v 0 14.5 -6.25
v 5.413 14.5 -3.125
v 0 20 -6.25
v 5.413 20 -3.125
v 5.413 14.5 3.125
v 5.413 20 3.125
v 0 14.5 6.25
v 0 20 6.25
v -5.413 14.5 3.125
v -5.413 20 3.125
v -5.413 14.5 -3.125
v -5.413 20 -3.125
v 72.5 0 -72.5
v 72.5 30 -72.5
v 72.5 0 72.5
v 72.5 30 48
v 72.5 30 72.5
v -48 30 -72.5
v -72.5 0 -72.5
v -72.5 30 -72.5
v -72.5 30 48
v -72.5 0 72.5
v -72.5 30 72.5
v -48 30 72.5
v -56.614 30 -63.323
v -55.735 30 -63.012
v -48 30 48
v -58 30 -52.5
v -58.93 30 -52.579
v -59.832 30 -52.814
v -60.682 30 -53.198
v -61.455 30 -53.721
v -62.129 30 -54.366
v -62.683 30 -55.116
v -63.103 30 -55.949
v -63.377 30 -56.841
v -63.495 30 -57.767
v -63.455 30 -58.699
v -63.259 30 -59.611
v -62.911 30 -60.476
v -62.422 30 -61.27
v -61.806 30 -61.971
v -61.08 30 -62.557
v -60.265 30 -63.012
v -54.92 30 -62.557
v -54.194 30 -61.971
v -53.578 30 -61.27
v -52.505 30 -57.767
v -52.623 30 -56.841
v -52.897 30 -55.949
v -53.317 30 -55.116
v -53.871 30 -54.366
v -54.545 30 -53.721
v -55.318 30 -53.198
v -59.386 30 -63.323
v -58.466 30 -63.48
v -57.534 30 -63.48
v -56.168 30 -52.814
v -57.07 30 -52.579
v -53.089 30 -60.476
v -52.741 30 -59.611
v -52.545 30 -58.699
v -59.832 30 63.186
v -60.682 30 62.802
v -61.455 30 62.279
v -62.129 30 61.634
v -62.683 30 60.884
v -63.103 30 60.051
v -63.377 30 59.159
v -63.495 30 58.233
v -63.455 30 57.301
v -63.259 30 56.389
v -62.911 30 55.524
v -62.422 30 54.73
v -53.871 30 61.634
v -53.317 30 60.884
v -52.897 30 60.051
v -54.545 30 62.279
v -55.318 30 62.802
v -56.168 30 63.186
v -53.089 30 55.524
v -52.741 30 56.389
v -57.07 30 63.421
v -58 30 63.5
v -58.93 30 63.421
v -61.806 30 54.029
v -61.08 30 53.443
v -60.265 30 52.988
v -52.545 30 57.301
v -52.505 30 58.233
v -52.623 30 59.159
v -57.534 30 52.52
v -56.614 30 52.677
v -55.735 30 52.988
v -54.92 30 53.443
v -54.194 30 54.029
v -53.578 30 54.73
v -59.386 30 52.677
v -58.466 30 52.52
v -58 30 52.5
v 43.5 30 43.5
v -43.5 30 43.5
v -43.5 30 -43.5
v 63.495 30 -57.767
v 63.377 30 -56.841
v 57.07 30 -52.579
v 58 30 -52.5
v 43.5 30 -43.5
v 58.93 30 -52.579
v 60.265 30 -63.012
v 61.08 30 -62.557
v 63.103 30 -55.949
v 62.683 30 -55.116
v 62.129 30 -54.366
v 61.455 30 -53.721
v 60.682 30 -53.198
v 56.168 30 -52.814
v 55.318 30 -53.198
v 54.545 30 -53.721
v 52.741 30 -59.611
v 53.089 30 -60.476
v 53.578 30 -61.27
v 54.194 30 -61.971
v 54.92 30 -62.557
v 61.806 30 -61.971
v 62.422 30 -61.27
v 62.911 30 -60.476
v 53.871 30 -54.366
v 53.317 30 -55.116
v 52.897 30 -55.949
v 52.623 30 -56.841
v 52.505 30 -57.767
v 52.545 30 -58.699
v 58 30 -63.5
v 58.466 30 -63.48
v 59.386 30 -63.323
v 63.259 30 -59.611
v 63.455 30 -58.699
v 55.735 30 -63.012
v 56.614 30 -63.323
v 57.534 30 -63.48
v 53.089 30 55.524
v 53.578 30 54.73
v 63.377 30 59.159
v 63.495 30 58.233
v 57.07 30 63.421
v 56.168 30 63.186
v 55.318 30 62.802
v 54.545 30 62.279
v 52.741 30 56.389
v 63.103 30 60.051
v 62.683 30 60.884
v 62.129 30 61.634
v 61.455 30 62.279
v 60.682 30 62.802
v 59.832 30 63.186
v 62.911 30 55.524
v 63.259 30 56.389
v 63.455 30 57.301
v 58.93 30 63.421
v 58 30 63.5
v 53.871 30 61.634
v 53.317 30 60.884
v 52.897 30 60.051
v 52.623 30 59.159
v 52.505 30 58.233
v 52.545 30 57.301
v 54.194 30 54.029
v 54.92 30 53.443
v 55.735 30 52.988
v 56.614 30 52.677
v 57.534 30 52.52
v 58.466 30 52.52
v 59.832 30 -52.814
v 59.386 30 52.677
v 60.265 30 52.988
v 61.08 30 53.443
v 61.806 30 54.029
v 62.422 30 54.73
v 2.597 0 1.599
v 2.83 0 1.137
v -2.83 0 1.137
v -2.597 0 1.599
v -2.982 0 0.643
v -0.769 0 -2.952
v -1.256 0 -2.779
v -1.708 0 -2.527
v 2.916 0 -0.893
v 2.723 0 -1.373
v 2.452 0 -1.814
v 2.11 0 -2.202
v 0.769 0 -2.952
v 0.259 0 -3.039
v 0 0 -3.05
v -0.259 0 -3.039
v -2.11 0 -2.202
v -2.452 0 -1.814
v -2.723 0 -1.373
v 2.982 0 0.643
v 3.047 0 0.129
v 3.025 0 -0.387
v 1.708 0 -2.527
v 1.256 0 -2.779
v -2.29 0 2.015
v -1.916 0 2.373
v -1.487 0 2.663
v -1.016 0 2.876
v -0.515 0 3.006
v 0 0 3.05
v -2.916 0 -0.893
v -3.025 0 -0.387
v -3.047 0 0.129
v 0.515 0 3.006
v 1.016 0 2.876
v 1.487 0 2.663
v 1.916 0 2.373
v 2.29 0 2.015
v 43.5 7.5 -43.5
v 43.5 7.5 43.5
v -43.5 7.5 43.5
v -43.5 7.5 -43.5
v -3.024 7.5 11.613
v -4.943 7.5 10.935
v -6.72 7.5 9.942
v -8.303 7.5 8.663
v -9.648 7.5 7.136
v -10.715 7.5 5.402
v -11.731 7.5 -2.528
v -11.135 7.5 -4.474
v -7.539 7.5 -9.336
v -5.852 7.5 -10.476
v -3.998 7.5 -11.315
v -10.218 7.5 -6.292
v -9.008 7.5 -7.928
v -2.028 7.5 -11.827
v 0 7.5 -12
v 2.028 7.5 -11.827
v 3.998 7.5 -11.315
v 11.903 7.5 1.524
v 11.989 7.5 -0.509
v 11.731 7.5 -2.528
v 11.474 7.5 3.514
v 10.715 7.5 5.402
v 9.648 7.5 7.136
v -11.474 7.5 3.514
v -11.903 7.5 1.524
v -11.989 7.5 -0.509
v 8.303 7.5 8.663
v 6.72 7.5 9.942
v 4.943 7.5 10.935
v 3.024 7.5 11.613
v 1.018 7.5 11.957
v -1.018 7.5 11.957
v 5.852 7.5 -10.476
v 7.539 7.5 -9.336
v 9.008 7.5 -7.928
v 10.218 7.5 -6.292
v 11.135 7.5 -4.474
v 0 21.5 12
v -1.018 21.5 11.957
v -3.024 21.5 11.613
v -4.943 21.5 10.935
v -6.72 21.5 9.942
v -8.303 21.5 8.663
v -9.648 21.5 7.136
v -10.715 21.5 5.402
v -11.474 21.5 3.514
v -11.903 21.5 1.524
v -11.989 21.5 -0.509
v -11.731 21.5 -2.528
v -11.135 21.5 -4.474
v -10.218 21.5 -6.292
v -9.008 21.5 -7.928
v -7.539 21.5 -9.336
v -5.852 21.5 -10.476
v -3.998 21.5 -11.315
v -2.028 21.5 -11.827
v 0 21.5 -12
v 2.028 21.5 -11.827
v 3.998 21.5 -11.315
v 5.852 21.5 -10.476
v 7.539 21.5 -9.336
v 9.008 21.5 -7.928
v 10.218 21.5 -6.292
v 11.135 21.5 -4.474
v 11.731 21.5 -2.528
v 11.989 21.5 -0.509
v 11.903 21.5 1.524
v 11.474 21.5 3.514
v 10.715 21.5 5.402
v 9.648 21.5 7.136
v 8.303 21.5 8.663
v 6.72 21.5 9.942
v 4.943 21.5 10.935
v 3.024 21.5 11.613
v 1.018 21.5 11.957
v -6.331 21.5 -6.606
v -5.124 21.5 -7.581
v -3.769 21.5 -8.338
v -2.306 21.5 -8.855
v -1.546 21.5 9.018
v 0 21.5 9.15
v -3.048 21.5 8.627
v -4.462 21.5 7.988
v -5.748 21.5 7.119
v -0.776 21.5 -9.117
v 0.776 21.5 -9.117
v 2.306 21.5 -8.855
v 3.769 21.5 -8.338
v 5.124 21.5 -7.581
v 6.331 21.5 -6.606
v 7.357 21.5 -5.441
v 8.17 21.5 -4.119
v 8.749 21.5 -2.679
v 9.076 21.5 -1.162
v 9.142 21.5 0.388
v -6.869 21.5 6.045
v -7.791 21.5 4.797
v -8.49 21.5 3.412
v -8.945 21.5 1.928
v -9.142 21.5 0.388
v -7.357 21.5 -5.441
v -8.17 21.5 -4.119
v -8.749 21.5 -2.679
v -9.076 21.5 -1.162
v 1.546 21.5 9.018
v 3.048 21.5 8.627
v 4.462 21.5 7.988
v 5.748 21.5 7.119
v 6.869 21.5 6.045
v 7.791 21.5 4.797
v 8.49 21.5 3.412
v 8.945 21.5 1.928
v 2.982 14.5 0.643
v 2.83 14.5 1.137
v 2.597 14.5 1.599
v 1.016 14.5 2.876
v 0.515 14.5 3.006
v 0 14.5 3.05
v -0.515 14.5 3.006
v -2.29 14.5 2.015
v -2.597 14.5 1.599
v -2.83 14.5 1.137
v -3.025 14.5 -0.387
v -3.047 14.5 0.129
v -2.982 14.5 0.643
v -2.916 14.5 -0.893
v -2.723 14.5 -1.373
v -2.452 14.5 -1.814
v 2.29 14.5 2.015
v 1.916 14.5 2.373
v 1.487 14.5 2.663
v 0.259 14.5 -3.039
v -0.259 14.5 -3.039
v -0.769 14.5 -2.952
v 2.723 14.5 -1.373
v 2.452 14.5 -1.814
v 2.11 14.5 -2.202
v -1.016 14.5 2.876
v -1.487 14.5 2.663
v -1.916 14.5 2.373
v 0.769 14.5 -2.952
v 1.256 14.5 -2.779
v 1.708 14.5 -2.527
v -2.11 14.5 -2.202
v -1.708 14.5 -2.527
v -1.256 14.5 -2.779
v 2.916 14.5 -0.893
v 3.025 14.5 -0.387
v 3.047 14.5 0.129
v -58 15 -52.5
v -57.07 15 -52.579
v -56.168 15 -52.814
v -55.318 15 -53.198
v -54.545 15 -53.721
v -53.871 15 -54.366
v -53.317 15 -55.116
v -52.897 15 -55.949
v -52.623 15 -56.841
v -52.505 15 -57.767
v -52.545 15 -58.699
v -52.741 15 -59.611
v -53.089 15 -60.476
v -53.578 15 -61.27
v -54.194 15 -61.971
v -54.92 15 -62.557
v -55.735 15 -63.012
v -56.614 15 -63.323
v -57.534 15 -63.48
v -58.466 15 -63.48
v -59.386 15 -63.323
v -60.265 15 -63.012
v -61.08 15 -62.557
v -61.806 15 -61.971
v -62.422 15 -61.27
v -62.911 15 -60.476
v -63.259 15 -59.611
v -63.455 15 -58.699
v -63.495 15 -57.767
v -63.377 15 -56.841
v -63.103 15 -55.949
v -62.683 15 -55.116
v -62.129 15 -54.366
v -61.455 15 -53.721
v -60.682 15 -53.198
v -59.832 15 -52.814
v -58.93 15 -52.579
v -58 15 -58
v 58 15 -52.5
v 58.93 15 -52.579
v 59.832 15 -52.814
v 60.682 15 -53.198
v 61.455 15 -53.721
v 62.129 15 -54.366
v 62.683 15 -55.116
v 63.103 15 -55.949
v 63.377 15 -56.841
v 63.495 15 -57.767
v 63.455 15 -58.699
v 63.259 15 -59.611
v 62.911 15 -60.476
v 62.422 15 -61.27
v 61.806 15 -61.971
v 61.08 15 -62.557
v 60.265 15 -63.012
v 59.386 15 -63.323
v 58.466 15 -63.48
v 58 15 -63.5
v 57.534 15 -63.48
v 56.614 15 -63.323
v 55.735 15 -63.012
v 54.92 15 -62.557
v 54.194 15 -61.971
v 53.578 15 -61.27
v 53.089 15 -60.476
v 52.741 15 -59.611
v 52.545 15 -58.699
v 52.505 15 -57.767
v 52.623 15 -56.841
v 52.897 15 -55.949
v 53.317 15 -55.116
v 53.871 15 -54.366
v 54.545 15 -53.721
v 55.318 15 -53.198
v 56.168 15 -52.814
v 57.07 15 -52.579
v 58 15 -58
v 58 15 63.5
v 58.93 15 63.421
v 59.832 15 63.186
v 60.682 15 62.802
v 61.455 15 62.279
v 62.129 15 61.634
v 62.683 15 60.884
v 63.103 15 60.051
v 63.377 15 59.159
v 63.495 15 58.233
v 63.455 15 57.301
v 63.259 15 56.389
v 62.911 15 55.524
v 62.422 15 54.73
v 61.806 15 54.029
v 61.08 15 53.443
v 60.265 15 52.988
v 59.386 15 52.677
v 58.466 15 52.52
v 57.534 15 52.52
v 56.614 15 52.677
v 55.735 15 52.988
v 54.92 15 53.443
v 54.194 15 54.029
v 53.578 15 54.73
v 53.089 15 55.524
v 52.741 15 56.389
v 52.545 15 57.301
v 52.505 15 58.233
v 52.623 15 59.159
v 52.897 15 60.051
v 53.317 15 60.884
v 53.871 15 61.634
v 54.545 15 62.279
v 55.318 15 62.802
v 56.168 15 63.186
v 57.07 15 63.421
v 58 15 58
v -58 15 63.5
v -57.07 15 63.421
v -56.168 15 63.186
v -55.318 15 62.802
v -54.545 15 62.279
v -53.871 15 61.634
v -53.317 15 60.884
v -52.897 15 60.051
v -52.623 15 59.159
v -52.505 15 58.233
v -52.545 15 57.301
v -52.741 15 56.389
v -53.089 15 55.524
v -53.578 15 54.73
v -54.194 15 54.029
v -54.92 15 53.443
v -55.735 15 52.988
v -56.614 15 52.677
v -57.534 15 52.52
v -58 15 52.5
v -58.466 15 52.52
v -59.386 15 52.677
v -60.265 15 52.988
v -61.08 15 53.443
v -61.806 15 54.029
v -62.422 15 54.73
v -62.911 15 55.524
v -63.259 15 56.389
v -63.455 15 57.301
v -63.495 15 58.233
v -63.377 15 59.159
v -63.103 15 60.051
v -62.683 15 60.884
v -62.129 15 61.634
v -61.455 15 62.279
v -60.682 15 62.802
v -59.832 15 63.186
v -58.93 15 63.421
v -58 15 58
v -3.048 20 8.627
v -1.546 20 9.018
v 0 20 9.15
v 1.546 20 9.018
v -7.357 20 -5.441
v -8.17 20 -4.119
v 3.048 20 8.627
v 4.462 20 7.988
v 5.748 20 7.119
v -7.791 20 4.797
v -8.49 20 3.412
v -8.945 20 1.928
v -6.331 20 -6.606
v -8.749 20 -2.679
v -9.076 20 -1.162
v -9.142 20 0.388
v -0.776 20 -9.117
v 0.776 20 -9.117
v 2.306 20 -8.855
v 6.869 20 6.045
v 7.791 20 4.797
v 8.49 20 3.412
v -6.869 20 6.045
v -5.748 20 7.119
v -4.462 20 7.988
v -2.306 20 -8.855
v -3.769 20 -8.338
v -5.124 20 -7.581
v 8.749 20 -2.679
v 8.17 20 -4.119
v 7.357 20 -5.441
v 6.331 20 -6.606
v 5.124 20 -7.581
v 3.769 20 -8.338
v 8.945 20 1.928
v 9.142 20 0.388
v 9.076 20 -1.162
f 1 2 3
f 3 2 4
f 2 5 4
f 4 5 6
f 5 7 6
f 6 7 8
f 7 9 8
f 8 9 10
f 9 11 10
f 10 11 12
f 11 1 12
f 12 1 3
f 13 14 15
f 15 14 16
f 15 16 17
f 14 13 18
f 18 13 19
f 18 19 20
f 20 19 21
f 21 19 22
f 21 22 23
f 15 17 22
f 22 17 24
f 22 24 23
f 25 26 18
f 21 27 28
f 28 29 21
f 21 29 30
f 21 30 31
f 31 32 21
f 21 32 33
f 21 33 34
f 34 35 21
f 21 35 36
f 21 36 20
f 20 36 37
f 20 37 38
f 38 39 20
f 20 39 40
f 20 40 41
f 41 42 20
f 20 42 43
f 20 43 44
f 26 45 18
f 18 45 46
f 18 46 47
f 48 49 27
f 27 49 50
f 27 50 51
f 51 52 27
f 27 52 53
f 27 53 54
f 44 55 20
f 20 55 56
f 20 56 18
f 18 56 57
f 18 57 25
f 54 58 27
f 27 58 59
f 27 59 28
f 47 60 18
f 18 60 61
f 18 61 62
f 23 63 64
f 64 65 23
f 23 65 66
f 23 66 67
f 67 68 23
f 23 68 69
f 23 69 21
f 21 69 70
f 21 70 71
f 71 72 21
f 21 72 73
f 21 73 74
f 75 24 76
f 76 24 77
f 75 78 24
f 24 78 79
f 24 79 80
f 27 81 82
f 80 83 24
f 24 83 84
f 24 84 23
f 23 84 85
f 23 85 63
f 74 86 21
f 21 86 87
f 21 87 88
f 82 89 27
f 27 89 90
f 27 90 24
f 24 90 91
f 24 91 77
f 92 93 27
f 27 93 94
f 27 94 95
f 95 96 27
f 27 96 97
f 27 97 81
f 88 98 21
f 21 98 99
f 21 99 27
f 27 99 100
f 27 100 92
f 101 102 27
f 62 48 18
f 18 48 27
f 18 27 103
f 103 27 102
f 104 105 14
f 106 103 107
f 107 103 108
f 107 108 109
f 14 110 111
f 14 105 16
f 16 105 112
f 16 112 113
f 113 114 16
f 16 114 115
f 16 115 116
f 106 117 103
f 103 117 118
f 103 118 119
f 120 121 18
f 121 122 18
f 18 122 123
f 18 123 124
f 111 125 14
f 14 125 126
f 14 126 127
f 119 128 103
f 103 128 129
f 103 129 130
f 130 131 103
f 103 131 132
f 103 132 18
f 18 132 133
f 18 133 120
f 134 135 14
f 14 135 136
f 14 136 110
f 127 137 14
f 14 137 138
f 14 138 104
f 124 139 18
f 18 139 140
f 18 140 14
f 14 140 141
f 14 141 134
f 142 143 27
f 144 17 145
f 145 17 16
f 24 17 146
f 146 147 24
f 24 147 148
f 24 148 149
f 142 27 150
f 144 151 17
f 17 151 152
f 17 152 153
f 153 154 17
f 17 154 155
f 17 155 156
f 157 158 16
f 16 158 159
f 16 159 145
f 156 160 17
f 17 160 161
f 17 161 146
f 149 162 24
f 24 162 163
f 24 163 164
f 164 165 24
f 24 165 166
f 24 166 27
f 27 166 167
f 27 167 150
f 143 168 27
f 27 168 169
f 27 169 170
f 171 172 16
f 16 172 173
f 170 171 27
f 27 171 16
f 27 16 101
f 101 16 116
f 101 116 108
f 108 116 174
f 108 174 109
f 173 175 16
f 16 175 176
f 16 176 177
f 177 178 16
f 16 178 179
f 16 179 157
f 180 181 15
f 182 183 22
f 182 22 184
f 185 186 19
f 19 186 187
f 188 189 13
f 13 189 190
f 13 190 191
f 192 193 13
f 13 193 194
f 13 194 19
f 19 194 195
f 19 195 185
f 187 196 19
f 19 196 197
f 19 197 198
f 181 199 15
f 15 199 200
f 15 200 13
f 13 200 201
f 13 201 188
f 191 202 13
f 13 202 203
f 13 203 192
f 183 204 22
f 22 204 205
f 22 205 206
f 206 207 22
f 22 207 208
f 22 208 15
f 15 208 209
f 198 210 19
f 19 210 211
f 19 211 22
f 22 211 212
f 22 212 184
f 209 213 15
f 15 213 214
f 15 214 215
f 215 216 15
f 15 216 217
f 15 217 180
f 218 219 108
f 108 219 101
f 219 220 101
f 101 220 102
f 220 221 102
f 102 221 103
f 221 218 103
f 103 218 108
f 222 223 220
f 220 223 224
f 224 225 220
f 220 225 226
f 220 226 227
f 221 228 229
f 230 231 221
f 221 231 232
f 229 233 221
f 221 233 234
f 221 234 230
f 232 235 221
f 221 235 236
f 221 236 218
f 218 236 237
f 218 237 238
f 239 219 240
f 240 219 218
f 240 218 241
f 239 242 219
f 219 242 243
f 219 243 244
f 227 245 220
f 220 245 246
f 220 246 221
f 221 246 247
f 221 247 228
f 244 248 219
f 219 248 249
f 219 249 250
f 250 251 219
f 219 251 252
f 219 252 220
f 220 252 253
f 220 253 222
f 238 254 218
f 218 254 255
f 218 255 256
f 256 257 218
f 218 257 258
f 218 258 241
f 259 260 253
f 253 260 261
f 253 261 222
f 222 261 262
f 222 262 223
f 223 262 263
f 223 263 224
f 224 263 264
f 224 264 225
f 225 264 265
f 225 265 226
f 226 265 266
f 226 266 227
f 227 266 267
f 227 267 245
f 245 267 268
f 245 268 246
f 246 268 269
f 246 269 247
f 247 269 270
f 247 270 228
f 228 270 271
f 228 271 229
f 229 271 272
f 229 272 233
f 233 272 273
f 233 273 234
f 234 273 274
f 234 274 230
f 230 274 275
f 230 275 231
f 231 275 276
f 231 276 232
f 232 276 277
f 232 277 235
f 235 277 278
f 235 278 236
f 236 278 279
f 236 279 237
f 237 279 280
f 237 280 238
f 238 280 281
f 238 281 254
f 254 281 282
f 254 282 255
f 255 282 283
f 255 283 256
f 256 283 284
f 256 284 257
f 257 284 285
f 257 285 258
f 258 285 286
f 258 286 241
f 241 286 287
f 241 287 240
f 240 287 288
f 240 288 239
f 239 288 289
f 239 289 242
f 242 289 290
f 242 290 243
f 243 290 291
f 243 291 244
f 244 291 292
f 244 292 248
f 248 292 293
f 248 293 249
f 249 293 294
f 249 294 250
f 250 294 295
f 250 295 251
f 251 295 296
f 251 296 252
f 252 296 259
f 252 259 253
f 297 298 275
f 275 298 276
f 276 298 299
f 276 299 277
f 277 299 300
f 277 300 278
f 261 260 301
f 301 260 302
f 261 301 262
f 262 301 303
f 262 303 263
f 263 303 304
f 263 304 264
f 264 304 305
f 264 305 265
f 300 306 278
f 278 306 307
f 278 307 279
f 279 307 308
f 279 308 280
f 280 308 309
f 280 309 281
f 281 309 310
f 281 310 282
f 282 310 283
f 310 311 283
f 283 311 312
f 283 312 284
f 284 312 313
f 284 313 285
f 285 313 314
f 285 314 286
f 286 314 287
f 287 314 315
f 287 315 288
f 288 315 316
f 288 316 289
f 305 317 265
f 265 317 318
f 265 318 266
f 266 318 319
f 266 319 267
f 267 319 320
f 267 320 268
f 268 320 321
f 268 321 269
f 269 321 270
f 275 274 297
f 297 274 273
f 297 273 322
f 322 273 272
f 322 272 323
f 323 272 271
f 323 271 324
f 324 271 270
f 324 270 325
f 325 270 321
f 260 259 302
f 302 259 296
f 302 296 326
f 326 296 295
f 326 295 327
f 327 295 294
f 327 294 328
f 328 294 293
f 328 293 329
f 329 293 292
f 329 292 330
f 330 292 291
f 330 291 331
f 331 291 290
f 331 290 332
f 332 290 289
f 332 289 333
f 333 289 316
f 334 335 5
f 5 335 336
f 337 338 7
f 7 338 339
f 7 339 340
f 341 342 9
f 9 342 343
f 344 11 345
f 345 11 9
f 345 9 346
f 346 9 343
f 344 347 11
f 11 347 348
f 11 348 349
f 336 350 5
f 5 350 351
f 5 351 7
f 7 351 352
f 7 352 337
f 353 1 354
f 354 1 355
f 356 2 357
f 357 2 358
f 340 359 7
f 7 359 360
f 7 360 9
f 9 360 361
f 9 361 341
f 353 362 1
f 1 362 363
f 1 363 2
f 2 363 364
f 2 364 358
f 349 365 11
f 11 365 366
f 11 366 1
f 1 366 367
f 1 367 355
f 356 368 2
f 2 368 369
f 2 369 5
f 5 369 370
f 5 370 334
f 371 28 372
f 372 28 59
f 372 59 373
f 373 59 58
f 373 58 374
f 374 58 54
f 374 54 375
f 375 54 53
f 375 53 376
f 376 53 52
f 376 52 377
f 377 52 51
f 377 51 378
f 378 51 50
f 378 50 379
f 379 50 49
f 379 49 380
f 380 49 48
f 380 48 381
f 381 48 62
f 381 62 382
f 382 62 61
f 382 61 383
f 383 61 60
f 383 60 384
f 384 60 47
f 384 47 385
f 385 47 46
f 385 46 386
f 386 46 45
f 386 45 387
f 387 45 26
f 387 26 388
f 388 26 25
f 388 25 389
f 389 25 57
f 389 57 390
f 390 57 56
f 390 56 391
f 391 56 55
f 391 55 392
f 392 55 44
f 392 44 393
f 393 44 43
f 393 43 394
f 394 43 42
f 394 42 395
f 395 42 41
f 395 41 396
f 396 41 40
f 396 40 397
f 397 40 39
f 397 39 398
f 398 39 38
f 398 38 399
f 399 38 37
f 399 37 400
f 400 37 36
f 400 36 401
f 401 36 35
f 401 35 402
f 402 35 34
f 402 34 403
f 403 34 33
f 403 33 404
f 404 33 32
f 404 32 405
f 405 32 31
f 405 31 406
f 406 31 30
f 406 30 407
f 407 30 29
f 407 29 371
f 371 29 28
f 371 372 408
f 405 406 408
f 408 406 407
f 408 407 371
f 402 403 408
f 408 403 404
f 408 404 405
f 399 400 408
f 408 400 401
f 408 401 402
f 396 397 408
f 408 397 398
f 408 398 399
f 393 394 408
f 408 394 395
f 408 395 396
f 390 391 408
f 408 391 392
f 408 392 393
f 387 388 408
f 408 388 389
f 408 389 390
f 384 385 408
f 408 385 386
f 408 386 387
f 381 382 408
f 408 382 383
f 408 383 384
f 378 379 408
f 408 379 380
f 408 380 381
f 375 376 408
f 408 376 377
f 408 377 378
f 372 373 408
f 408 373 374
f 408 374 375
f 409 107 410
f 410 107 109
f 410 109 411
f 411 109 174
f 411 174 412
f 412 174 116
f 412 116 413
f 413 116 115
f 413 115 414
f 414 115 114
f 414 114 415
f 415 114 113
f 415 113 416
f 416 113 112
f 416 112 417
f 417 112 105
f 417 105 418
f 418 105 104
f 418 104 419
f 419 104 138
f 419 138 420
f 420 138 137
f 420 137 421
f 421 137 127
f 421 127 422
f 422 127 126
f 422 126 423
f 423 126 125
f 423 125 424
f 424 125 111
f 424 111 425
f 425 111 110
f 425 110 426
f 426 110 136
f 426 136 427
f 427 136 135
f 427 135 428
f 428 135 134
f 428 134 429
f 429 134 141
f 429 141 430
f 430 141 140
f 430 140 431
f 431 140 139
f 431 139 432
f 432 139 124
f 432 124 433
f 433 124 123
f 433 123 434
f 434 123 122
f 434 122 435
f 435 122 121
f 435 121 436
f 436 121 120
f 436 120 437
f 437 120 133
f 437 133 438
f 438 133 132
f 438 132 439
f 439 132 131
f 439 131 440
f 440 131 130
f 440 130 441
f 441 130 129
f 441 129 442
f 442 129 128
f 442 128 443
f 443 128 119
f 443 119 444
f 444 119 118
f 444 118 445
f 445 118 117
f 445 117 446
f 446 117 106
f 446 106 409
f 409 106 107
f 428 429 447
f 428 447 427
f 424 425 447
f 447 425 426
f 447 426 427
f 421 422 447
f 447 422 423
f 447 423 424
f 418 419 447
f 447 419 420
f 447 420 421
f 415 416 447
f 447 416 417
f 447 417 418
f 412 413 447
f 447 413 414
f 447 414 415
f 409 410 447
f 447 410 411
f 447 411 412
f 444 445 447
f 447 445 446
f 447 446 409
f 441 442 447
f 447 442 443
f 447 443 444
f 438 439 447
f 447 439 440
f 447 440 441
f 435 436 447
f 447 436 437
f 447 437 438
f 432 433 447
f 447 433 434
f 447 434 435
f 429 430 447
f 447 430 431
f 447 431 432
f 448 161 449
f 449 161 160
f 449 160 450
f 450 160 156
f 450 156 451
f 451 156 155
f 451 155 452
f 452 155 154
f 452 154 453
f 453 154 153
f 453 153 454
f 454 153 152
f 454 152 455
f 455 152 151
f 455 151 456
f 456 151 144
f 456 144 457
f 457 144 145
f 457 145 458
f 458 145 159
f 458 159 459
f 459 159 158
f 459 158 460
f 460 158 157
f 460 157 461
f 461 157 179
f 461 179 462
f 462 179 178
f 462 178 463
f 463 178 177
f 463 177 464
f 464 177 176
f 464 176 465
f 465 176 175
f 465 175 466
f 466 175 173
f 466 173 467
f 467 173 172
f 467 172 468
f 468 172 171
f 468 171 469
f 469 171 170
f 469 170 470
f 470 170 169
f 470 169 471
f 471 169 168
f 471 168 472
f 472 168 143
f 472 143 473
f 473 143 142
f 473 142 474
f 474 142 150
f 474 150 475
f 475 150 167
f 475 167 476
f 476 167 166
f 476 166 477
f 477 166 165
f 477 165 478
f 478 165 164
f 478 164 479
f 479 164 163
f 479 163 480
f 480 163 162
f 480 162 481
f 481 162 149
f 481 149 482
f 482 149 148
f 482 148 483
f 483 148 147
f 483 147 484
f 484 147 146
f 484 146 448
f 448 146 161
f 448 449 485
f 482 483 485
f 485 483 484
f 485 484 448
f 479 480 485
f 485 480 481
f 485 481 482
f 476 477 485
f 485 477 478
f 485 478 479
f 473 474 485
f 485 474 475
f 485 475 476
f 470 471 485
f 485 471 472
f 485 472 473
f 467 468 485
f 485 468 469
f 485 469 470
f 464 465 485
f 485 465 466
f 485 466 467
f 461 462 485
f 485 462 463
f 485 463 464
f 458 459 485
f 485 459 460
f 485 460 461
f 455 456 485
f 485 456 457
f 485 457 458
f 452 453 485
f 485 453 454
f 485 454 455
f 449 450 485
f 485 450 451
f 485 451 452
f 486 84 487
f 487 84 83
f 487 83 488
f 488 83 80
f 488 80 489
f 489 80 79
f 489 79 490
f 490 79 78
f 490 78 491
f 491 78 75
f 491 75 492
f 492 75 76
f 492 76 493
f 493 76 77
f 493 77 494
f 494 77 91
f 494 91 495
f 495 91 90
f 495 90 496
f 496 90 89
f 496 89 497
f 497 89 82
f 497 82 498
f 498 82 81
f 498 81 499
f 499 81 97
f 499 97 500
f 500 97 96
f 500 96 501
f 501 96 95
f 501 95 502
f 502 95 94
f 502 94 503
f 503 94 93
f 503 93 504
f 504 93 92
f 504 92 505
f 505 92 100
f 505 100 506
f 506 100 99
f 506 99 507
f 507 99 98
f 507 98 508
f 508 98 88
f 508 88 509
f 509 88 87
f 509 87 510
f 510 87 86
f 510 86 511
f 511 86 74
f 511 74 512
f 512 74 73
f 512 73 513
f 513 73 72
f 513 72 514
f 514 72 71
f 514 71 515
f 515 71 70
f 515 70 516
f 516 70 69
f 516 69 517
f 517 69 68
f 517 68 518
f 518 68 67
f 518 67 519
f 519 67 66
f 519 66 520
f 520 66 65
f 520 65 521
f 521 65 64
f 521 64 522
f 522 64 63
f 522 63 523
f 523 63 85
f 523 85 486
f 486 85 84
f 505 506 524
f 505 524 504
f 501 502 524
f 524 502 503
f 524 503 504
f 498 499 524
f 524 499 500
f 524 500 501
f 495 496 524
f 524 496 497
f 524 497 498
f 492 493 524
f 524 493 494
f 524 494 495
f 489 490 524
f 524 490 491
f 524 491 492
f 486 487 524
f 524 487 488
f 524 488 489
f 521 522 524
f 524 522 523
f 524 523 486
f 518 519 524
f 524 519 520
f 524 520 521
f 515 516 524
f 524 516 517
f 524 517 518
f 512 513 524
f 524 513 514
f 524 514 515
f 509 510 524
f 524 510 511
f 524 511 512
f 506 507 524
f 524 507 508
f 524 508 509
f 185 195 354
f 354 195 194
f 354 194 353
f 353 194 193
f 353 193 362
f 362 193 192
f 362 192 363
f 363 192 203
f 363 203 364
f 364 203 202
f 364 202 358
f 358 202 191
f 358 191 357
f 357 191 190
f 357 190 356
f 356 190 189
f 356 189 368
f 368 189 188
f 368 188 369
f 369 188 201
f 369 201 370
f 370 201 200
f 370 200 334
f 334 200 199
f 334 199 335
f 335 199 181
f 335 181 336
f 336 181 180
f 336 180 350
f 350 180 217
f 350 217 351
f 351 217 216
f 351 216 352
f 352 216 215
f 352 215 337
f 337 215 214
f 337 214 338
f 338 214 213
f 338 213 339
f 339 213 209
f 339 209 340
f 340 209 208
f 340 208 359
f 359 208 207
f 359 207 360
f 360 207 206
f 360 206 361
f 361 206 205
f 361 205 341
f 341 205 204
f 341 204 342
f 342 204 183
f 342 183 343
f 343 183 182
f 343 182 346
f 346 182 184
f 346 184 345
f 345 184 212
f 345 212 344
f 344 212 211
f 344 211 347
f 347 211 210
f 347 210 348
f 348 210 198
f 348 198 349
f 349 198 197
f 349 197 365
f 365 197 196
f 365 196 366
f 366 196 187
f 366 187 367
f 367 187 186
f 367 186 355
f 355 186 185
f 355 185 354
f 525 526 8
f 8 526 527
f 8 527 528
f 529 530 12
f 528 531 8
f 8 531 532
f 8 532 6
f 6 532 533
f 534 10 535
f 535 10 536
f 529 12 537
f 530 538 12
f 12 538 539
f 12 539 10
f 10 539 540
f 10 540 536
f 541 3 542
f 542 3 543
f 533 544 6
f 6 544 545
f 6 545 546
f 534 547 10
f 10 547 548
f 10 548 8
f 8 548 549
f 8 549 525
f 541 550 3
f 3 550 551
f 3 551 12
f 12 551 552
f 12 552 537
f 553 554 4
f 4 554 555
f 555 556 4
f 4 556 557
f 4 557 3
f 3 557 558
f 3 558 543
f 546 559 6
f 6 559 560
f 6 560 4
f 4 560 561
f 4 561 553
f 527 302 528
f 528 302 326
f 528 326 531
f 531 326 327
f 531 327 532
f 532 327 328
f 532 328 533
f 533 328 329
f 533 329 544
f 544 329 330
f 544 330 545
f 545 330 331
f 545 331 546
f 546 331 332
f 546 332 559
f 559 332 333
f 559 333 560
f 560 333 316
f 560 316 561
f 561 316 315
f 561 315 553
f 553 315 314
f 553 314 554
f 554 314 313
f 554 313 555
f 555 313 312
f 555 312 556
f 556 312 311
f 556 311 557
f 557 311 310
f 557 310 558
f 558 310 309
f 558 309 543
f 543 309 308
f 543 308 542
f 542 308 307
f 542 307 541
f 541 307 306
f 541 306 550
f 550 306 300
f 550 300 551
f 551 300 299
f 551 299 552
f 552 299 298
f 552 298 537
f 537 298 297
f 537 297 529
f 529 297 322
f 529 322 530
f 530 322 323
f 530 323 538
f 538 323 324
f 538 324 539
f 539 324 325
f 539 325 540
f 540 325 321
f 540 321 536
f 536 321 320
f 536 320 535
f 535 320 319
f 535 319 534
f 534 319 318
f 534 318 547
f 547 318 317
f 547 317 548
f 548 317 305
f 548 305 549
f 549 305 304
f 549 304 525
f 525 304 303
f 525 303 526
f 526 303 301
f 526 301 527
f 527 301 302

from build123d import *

# Parameters (mm, degrees)
SKETCH1_W           = 145
SKETCH1_H           = 145
BOSS_EXTRUDE1_DEPTH = 30
SKETCH2_W           = 87
SKETCH2_H           = 87
CUT_EXTRUDE1_DEPTH  = 22.5
SKETCH3_R           = 12
BOSS_EXTRUDE2_DEPTH = 14
CUT_EXTRUDE2_DEPTH  = 7
SKETCH5_R           = 5.5
CUT_EXTRUDE3_DEPTH  = 15
CUT_EXTRUDE4_REACH  = 105.695
SKETCH6_R           = 3.05
SKETCH7_R           = 9.15
CUT_EXTRUDE5_DEPTH  = 1.5


with BuildPart() as part:
    # Sketch1 → Boss-Extrude1 (new body)
    with BuildSketch(Plane(origin=(0, 0, 0), x_dir=(1, 0, 0), z_dir=(0, 1, 0))):
        Rectangle(SKETCH1_W, SKETCH1_H)
    extrude(amount=BOSS_EXTRUDE1_DEPTH)

    # Sketch2 → Cut-Extrude1 (cut)
    with BuildSketch(Plane(origin=(0, 30, 0), x_dir=(1, 0, 0), z_dir=(0, 1, 0))):
        Rectangle(SKETCH2_W, SKETCH2_H)
    extrude(amount=-CUT_EXTRUDE1_DEPTH, mode=Mode.SUBTRACT)

    # Sketch3 → Boss-Extrude2 (add)
    with BuildSketch(Plane(origin=(0, 7.5, 0), x_dir=(1, 0, 0), z_dir=(0, 1, 0))):
        with Locations(Location((0, 0, 0), (0, 0, 90))):
            Circle(SKETCH3_R)
    extrude(amount=BOSS_EXTRUDE2_DEPTH)

    # Sketch4 → Cut-Extrude2 (cut)
    with BuildSketch(Plane(origin=(0, 21.5, 0), x_dir=(1, 0, 0), z_dir=(0, 1, 0))):
        Polygon((0, 6.25), (-5.412658774, 3.125), (-5.412658774, -3.125), (0, -6.25), (5.412658774, -3.125), (5.412658774, 3.125), align=None)
    extrude(amount=-CUT_EXTRUDE2_DEPTH, mode=Mode.SUBTRACT)

    # Sketch5 → Cut-Extrude3 (cut)
    with BuildSketch(Plane(origin=(0, 30, 0), x_dir=(1, 0, 0), z_dir=(0, 1, 0))):
        with Locations(Location((-58, 58, 0), (0, 0, 270))):
            Circle(SKETCH5_R)
        with Locations(Location((58, 58, 0), (0, 0, 90))):
            Circle(SKETCH5_R)
        with Locations(Location((58, -58, 0), (0, 0, 270))):
            Circle(SKETCH5_R)
        with Locations(Location((-58, -58, 0), (0, 0, 90))):
            Circle(SKETCH5_R)
    extrude(amount=-CUT_EXTRUDE3_DEPTH, mode=Mode.SUBTRACT)

    # Sketch6 → Cut-Extrude4 (cut, up to next)
    with BuildSketch(Plane(origin=(0, 14.5, 0), x_dir=(1, 0, 0), z_dir=(0, 1, 0)), mode=Mode.PRIVATE) as cut_extrude4_sk1:
        with Locations(Location((0, 0, 0), (0, 0, 270))):
            Circle(SKETCH6_R)
    cut_extrude4_tool1 = extrude(cut_extrude4_sk1.sketch, amount=-CUT_EXTRUDE4_REACH, mode=Mode.PRIVATE) & part.part
    add(cut_extrude4_tool1.solids().sort_by_distance((0, 14.5, 0))[0], mode=Mode.SUBTRACT)

    # Sketch7 → Cut-Extrude5 (cut)
    with BuildSketch(Plane(origin=(0, 21.5, 0), x_dir=(1, 0, 0), z_dir=(0, 1, 0))):
        with Locations(Location((0, 0, 0), (0, 0, 270))):
            Circle(SKETCH7_R)
    extrude(amount=-CUT_EXTRUDE5_DEPTH, mode=Mode.SUBTRACT)


solid = part.part
